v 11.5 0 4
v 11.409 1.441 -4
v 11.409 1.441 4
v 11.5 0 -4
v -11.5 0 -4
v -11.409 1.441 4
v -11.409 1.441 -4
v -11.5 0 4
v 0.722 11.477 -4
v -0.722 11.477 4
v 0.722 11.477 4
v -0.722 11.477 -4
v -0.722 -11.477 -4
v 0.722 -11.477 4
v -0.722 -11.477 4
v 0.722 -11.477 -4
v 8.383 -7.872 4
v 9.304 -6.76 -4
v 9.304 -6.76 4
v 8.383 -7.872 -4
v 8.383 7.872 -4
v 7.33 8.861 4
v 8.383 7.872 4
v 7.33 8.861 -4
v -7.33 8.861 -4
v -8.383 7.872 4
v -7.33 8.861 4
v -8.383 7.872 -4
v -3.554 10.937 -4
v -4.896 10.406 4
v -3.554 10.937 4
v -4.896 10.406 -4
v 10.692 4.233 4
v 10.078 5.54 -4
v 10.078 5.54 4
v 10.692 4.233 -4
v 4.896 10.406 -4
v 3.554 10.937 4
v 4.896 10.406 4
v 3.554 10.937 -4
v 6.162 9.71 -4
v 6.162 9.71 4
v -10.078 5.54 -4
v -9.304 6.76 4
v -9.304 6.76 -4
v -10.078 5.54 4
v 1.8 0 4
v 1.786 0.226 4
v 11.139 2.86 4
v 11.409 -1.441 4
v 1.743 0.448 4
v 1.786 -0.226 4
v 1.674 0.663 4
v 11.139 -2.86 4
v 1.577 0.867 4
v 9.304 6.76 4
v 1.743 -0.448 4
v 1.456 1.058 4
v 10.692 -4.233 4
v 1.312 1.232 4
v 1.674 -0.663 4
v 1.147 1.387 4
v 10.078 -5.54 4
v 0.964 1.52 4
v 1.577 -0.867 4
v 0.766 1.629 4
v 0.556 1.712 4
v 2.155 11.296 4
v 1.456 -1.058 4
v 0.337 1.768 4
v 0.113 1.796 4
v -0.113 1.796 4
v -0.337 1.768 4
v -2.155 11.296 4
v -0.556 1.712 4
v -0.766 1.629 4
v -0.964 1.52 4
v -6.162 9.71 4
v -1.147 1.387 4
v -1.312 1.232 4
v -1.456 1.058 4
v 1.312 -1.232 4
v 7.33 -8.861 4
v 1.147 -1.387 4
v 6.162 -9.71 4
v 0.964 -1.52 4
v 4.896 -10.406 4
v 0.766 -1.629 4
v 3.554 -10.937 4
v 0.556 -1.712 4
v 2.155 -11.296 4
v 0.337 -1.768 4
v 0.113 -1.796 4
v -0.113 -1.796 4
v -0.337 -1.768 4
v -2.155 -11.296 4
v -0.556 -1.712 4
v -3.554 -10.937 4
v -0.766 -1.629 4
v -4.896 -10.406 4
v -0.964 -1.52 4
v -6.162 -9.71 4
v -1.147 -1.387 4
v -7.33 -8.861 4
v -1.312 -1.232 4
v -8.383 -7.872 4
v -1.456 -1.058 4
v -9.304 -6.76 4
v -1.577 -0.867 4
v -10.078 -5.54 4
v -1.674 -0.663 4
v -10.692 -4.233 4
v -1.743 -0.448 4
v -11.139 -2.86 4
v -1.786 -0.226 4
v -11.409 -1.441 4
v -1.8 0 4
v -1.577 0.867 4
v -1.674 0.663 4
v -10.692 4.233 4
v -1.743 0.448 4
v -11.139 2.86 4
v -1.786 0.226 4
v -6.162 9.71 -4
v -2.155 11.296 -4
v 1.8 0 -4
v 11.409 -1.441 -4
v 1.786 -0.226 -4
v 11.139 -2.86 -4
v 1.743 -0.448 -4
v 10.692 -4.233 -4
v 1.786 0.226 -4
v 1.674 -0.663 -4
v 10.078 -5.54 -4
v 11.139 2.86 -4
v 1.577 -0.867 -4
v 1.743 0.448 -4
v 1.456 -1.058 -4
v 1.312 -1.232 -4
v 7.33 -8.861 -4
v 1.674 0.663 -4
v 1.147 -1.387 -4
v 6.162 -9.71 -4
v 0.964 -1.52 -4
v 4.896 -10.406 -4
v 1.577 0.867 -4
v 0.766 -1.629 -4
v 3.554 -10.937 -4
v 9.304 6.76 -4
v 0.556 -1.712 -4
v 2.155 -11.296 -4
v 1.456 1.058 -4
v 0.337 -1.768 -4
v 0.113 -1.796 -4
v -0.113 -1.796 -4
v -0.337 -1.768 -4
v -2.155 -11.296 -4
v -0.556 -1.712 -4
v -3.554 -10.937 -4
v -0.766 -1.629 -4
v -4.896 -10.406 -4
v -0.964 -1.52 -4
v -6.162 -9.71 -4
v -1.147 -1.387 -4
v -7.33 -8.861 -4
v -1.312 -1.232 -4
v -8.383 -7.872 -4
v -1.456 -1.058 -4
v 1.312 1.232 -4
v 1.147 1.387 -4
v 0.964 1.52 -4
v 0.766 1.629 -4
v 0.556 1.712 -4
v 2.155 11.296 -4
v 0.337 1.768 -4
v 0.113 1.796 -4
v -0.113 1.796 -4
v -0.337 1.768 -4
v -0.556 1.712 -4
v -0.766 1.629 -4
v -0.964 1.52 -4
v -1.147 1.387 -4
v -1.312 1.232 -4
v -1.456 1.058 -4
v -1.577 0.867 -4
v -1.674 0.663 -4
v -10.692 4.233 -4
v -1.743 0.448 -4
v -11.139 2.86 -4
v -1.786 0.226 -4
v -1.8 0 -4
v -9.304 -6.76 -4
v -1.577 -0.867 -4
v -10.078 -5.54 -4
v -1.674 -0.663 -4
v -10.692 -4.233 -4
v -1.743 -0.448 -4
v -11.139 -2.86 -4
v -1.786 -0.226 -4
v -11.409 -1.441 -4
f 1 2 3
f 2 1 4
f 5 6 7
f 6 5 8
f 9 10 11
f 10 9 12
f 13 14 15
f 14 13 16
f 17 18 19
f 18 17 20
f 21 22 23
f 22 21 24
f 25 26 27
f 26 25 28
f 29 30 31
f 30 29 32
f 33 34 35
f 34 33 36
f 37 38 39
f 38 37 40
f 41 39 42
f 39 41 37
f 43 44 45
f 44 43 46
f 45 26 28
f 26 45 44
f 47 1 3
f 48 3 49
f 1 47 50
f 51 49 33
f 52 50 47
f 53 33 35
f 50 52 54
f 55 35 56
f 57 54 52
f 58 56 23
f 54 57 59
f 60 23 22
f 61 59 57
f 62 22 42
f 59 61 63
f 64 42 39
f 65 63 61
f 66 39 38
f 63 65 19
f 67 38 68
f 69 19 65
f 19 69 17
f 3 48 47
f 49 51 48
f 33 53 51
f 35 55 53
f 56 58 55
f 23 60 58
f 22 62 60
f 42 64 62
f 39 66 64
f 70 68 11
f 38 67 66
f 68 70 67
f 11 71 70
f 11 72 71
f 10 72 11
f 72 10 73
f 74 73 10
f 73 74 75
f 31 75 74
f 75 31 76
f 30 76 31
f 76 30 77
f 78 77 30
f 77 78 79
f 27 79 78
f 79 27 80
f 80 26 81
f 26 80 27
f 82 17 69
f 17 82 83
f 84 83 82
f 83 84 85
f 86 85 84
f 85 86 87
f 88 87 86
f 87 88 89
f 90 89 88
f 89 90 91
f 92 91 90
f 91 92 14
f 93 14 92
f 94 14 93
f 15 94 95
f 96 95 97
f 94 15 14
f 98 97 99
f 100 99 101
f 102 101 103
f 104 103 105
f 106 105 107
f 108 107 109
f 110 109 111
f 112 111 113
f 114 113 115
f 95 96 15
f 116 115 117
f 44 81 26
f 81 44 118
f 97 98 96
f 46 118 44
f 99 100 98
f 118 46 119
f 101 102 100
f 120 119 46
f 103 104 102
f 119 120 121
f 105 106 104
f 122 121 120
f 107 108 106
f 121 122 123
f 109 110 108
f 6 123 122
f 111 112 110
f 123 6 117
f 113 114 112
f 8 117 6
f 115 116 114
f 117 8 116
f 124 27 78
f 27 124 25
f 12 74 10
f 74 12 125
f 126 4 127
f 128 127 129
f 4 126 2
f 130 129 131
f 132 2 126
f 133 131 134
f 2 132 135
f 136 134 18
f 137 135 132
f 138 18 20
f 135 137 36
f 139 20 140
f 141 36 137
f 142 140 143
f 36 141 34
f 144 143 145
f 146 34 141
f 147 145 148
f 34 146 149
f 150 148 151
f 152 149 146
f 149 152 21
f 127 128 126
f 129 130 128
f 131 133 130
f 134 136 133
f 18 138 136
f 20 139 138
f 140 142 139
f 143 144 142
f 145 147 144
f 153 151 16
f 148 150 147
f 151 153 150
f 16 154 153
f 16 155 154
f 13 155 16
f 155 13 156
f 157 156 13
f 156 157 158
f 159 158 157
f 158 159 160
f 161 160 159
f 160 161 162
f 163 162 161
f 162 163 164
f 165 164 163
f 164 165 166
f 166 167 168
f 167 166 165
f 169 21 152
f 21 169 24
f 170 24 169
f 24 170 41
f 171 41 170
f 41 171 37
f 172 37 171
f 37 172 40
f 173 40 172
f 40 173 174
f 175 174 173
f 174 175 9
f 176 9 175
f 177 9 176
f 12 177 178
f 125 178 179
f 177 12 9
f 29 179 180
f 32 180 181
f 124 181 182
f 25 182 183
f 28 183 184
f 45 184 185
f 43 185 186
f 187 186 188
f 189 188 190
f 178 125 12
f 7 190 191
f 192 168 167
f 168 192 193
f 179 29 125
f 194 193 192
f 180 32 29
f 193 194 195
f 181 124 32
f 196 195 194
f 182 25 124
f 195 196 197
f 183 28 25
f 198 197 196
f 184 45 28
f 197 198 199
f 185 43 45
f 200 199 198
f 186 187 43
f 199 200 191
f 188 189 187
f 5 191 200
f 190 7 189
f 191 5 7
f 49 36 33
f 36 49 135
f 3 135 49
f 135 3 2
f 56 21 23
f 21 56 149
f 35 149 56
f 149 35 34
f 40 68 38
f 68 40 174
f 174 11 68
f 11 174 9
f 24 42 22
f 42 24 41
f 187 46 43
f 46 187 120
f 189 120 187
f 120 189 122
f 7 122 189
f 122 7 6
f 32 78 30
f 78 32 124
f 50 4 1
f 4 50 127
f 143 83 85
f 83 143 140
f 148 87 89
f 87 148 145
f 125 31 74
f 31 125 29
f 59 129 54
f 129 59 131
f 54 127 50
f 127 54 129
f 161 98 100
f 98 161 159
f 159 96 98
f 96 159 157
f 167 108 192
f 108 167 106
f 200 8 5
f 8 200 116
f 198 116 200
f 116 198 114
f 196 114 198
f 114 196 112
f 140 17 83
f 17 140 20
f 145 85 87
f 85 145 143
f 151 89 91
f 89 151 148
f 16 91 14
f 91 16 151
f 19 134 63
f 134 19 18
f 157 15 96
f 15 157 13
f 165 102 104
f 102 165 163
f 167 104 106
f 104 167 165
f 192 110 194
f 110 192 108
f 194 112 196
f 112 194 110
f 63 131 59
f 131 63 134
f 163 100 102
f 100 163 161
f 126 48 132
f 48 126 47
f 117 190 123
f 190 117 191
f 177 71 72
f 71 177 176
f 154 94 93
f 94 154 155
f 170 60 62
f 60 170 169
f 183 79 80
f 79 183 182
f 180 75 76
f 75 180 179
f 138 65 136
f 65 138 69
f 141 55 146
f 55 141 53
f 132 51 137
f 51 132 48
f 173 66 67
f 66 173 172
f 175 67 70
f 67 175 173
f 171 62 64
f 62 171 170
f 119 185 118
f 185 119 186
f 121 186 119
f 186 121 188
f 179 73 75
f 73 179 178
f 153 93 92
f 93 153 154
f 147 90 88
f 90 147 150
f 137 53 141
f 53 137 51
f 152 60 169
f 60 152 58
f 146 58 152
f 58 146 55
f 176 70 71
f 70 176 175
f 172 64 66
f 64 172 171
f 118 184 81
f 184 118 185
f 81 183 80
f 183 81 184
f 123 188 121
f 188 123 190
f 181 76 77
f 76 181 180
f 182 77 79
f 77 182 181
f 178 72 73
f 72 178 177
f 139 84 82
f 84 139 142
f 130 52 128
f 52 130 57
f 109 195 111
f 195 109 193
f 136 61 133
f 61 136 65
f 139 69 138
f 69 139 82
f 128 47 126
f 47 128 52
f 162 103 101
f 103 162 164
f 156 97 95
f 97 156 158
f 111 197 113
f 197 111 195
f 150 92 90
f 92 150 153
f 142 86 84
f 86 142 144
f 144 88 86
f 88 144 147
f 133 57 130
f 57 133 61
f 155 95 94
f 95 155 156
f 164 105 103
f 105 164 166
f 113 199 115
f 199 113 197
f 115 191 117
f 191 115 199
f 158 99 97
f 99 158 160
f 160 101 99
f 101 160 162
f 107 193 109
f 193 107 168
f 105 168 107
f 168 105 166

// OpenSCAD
$fn = 50;


difference() {
	union() {
		translate(v = [0, 0, -4.0000000000]) {
			cylinder(h = 8, r = 11.5000000000);
		}
	}
	union() {
		translate(v = [0, 0, -100.0000000000]) {
			cylinder(h = 200, r = 1.8000000000);
		}
	}
}
